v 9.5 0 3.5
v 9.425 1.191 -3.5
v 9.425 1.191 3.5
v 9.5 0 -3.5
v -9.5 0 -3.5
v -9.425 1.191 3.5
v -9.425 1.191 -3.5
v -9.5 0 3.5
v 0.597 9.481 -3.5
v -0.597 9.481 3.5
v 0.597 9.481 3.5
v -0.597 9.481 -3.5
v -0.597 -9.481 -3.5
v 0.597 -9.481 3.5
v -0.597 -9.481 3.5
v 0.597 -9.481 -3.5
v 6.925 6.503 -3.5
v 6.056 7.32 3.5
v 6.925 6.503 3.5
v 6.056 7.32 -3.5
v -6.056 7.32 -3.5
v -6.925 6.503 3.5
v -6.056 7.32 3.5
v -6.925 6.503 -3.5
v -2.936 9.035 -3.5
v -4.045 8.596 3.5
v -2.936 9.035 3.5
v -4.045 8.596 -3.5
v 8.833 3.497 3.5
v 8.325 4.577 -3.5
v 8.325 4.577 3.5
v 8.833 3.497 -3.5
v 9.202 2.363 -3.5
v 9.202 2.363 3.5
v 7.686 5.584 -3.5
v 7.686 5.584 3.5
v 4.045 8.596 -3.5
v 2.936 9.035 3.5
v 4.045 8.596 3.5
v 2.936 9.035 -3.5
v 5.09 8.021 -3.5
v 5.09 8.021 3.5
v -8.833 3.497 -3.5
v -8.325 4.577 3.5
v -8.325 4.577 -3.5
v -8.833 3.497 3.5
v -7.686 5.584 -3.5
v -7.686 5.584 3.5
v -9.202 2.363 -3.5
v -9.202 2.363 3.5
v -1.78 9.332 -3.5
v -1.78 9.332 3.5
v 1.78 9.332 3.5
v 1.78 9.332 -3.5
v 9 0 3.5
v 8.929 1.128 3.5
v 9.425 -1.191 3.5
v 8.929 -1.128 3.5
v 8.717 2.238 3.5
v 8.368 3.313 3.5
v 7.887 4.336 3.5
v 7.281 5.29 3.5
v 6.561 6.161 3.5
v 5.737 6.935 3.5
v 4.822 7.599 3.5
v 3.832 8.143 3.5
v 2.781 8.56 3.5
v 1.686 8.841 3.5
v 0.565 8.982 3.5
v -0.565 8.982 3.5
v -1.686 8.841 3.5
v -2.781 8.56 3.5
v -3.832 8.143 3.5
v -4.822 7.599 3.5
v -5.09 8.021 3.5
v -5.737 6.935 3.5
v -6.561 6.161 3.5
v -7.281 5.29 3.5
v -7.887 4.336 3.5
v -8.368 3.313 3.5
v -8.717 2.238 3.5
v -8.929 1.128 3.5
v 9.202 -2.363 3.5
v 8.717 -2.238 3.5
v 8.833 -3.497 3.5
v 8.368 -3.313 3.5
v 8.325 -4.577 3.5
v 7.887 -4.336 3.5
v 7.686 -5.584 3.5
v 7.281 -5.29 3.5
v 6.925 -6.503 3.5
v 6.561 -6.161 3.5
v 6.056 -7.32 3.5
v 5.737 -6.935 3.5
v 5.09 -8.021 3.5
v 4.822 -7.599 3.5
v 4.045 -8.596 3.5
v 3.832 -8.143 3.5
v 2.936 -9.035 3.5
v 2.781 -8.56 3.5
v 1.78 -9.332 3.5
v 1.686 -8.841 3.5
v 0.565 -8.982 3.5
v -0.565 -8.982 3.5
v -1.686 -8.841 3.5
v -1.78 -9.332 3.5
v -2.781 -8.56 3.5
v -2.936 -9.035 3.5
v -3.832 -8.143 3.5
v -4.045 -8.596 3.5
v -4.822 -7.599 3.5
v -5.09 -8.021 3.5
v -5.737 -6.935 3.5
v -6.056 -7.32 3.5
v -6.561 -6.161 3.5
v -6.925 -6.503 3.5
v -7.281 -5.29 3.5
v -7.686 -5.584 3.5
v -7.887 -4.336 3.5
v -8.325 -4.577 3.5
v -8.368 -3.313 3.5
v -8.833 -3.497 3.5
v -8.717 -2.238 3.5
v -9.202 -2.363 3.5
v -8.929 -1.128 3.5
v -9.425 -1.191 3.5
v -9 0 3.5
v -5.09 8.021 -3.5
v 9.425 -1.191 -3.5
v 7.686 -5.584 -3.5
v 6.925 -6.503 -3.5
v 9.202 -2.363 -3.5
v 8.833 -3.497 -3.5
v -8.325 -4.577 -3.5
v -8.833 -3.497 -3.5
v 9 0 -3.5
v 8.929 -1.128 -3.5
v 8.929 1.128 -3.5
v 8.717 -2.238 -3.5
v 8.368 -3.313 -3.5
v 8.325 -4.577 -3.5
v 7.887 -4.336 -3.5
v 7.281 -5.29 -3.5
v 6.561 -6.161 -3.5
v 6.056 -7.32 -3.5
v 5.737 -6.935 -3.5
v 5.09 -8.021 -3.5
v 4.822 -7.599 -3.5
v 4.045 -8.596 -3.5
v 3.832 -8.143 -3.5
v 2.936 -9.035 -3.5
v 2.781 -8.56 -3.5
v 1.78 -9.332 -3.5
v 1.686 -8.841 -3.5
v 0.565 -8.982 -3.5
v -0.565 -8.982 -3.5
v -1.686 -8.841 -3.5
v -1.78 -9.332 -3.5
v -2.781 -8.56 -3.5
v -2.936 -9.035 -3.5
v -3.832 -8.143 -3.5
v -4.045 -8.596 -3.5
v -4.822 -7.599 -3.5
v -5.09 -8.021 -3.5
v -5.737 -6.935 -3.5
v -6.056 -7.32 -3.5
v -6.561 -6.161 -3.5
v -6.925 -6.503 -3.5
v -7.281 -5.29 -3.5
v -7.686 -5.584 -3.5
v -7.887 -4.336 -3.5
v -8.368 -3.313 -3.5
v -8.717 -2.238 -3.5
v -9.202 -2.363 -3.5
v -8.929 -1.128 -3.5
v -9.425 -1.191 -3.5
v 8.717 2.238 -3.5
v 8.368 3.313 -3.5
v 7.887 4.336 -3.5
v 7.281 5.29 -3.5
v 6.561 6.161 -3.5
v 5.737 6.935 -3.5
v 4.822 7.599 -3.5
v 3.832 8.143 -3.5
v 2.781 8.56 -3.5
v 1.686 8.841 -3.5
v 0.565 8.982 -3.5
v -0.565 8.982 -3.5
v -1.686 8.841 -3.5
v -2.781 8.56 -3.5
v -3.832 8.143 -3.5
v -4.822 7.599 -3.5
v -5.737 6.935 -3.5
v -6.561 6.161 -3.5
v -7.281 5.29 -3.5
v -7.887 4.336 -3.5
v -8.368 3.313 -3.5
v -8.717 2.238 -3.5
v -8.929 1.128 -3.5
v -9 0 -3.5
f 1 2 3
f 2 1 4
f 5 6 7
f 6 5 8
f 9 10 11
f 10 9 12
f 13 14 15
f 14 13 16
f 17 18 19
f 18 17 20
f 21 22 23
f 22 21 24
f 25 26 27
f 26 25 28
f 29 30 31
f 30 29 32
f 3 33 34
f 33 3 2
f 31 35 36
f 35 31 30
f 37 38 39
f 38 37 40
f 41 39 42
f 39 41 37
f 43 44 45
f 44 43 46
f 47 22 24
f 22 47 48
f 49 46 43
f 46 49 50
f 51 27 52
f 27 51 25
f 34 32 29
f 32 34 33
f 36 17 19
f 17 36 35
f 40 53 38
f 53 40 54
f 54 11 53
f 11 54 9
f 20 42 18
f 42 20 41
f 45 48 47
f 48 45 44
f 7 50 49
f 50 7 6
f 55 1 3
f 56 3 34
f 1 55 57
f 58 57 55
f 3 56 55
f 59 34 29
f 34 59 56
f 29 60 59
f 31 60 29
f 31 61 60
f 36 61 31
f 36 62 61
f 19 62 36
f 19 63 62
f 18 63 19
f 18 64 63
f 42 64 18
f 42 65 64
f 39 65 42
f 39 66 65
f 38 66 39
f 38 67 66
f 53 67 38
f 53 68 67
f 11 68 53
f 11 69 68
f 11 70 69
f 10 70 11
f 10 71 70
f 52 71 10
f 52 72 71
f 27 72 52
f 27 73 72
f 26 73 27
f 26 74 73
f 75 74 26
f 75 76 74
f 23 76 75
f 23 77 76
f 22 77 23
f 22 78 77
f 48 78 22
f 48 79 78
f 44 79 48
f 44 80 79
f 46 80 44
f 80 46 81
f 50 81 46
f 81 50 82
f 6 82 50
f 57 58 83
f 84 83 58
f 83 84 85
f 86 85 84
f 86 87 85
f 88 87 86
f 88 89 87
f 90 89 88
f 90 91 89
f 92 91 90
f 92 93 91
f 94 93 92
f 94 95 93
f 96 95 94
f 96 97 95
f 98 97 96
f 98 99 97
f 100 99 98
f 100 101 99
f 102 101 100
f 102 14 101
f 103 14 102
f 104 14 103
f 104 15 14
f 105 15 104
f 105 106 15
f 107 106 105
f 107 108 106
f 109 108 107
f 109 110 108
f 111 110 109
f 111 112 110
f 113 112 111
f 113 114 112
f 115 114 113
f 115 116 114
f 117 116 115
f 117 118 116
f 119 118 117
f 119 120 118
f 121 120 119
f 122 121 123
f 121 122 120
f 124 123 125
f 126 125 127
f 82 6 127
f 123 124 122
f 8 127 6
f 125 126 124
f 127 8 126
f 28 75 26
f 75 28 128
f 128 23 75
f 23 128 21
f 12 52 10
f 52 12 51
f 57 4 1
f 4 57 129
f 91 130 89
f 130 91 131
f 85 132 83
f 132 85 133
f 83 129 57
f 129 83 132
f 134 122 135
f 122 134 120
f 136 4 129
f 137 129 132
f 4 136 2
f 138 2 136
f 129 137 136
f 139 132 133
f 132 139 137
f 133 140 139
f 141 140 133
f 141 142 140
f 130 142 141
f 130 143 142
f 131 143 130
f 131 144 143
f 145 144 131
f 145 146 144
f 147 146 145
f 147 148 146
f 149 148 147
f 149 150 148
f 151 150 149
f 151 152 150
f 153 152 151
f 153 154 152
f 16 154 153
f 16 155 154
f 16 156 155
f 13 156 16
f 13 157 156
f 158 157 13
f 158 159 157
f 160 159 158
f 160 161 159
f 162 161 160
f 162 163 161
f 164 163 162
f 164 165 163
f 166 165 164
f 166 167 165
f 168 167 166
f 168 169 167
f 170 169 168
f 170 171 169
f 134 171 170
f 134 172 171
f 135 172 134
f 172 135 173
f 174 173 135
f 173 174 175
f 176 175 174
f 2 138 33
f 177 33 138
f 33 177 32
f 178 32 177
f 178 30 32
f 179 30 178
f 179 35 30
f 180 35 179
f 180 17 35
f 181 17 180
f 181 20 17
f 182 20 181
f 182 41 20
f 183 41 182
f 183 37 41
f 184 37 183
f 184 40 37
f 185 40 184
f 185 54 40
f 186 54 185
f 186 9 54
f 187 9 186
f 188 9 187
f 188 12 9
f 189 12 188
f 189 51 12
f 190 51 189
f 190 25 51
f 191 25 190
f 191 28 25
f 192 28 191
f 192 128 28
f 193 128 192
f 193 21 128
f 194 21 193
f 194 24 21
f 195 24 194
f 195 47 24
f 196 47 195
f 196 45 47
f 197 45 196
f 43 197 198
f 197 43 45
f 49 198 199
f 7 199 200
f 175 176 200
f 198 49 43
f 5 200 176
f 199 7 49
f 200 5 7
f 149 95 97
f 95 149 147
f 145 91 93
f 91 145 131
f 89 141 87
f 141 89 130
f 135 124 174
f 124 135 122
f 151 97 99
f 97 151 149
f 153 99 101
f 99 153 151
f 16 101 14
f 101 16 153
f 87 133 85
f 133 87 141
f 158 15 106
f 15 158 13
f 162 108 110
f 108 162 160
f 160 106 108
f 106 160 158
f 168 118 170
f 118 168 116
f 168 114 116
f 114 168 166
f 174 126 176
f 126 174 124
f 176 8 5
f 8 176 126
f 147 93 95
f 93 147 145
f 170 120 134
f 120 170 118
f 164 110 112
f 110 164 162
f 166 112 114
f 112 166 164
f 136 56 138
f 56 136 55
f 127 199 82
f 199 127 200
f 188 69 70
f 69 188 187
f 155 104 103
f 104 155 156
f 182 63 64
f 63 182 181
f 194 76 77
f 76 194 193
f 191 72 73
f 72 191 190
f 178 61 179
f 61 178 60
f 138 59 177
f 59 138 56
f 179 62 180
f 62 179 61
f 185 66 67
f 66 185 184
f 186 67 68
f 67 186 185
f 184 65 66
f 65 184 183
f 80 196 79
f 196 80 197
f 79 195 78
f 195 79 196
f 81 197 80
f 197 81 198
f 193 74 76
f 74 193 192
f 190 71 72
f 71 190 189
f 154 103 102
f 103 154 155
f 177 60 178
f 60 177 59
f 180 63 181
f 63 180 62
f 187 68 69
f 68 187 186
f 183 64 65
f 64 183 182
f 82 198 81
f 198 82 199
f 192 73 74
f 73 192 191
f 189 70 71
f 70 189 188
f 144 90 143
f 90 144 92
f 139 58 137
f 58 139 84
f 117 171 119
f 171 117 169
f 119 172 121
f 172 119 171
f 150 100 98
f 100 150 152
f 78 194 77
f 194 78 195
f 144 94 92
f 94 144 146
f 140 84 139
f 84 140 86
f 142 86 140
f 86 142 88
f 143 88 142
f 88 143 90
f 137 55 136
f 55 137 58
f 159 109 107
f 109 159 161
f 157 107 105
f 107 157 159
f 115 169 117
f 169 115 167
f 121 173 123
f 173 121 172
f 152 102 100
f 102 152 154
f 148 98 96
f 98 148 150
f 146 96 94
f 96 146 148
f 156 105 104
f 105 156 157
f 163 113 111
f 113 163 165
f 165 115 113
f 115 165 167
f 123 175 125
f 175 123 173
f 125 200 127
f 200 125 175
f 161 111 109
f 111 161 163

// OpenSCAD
$fn = 50;


difference() {
	union() {
		translate(v = [0, 0, -3.5000000000]) {
			cylinder(h = 7, r = 9.5000000000);
		}
	}
	union() {
		translate(v = [0, 0, -100.0000000000]) {
			cylinder(h = 200, r = 9);
		}
	}
}
